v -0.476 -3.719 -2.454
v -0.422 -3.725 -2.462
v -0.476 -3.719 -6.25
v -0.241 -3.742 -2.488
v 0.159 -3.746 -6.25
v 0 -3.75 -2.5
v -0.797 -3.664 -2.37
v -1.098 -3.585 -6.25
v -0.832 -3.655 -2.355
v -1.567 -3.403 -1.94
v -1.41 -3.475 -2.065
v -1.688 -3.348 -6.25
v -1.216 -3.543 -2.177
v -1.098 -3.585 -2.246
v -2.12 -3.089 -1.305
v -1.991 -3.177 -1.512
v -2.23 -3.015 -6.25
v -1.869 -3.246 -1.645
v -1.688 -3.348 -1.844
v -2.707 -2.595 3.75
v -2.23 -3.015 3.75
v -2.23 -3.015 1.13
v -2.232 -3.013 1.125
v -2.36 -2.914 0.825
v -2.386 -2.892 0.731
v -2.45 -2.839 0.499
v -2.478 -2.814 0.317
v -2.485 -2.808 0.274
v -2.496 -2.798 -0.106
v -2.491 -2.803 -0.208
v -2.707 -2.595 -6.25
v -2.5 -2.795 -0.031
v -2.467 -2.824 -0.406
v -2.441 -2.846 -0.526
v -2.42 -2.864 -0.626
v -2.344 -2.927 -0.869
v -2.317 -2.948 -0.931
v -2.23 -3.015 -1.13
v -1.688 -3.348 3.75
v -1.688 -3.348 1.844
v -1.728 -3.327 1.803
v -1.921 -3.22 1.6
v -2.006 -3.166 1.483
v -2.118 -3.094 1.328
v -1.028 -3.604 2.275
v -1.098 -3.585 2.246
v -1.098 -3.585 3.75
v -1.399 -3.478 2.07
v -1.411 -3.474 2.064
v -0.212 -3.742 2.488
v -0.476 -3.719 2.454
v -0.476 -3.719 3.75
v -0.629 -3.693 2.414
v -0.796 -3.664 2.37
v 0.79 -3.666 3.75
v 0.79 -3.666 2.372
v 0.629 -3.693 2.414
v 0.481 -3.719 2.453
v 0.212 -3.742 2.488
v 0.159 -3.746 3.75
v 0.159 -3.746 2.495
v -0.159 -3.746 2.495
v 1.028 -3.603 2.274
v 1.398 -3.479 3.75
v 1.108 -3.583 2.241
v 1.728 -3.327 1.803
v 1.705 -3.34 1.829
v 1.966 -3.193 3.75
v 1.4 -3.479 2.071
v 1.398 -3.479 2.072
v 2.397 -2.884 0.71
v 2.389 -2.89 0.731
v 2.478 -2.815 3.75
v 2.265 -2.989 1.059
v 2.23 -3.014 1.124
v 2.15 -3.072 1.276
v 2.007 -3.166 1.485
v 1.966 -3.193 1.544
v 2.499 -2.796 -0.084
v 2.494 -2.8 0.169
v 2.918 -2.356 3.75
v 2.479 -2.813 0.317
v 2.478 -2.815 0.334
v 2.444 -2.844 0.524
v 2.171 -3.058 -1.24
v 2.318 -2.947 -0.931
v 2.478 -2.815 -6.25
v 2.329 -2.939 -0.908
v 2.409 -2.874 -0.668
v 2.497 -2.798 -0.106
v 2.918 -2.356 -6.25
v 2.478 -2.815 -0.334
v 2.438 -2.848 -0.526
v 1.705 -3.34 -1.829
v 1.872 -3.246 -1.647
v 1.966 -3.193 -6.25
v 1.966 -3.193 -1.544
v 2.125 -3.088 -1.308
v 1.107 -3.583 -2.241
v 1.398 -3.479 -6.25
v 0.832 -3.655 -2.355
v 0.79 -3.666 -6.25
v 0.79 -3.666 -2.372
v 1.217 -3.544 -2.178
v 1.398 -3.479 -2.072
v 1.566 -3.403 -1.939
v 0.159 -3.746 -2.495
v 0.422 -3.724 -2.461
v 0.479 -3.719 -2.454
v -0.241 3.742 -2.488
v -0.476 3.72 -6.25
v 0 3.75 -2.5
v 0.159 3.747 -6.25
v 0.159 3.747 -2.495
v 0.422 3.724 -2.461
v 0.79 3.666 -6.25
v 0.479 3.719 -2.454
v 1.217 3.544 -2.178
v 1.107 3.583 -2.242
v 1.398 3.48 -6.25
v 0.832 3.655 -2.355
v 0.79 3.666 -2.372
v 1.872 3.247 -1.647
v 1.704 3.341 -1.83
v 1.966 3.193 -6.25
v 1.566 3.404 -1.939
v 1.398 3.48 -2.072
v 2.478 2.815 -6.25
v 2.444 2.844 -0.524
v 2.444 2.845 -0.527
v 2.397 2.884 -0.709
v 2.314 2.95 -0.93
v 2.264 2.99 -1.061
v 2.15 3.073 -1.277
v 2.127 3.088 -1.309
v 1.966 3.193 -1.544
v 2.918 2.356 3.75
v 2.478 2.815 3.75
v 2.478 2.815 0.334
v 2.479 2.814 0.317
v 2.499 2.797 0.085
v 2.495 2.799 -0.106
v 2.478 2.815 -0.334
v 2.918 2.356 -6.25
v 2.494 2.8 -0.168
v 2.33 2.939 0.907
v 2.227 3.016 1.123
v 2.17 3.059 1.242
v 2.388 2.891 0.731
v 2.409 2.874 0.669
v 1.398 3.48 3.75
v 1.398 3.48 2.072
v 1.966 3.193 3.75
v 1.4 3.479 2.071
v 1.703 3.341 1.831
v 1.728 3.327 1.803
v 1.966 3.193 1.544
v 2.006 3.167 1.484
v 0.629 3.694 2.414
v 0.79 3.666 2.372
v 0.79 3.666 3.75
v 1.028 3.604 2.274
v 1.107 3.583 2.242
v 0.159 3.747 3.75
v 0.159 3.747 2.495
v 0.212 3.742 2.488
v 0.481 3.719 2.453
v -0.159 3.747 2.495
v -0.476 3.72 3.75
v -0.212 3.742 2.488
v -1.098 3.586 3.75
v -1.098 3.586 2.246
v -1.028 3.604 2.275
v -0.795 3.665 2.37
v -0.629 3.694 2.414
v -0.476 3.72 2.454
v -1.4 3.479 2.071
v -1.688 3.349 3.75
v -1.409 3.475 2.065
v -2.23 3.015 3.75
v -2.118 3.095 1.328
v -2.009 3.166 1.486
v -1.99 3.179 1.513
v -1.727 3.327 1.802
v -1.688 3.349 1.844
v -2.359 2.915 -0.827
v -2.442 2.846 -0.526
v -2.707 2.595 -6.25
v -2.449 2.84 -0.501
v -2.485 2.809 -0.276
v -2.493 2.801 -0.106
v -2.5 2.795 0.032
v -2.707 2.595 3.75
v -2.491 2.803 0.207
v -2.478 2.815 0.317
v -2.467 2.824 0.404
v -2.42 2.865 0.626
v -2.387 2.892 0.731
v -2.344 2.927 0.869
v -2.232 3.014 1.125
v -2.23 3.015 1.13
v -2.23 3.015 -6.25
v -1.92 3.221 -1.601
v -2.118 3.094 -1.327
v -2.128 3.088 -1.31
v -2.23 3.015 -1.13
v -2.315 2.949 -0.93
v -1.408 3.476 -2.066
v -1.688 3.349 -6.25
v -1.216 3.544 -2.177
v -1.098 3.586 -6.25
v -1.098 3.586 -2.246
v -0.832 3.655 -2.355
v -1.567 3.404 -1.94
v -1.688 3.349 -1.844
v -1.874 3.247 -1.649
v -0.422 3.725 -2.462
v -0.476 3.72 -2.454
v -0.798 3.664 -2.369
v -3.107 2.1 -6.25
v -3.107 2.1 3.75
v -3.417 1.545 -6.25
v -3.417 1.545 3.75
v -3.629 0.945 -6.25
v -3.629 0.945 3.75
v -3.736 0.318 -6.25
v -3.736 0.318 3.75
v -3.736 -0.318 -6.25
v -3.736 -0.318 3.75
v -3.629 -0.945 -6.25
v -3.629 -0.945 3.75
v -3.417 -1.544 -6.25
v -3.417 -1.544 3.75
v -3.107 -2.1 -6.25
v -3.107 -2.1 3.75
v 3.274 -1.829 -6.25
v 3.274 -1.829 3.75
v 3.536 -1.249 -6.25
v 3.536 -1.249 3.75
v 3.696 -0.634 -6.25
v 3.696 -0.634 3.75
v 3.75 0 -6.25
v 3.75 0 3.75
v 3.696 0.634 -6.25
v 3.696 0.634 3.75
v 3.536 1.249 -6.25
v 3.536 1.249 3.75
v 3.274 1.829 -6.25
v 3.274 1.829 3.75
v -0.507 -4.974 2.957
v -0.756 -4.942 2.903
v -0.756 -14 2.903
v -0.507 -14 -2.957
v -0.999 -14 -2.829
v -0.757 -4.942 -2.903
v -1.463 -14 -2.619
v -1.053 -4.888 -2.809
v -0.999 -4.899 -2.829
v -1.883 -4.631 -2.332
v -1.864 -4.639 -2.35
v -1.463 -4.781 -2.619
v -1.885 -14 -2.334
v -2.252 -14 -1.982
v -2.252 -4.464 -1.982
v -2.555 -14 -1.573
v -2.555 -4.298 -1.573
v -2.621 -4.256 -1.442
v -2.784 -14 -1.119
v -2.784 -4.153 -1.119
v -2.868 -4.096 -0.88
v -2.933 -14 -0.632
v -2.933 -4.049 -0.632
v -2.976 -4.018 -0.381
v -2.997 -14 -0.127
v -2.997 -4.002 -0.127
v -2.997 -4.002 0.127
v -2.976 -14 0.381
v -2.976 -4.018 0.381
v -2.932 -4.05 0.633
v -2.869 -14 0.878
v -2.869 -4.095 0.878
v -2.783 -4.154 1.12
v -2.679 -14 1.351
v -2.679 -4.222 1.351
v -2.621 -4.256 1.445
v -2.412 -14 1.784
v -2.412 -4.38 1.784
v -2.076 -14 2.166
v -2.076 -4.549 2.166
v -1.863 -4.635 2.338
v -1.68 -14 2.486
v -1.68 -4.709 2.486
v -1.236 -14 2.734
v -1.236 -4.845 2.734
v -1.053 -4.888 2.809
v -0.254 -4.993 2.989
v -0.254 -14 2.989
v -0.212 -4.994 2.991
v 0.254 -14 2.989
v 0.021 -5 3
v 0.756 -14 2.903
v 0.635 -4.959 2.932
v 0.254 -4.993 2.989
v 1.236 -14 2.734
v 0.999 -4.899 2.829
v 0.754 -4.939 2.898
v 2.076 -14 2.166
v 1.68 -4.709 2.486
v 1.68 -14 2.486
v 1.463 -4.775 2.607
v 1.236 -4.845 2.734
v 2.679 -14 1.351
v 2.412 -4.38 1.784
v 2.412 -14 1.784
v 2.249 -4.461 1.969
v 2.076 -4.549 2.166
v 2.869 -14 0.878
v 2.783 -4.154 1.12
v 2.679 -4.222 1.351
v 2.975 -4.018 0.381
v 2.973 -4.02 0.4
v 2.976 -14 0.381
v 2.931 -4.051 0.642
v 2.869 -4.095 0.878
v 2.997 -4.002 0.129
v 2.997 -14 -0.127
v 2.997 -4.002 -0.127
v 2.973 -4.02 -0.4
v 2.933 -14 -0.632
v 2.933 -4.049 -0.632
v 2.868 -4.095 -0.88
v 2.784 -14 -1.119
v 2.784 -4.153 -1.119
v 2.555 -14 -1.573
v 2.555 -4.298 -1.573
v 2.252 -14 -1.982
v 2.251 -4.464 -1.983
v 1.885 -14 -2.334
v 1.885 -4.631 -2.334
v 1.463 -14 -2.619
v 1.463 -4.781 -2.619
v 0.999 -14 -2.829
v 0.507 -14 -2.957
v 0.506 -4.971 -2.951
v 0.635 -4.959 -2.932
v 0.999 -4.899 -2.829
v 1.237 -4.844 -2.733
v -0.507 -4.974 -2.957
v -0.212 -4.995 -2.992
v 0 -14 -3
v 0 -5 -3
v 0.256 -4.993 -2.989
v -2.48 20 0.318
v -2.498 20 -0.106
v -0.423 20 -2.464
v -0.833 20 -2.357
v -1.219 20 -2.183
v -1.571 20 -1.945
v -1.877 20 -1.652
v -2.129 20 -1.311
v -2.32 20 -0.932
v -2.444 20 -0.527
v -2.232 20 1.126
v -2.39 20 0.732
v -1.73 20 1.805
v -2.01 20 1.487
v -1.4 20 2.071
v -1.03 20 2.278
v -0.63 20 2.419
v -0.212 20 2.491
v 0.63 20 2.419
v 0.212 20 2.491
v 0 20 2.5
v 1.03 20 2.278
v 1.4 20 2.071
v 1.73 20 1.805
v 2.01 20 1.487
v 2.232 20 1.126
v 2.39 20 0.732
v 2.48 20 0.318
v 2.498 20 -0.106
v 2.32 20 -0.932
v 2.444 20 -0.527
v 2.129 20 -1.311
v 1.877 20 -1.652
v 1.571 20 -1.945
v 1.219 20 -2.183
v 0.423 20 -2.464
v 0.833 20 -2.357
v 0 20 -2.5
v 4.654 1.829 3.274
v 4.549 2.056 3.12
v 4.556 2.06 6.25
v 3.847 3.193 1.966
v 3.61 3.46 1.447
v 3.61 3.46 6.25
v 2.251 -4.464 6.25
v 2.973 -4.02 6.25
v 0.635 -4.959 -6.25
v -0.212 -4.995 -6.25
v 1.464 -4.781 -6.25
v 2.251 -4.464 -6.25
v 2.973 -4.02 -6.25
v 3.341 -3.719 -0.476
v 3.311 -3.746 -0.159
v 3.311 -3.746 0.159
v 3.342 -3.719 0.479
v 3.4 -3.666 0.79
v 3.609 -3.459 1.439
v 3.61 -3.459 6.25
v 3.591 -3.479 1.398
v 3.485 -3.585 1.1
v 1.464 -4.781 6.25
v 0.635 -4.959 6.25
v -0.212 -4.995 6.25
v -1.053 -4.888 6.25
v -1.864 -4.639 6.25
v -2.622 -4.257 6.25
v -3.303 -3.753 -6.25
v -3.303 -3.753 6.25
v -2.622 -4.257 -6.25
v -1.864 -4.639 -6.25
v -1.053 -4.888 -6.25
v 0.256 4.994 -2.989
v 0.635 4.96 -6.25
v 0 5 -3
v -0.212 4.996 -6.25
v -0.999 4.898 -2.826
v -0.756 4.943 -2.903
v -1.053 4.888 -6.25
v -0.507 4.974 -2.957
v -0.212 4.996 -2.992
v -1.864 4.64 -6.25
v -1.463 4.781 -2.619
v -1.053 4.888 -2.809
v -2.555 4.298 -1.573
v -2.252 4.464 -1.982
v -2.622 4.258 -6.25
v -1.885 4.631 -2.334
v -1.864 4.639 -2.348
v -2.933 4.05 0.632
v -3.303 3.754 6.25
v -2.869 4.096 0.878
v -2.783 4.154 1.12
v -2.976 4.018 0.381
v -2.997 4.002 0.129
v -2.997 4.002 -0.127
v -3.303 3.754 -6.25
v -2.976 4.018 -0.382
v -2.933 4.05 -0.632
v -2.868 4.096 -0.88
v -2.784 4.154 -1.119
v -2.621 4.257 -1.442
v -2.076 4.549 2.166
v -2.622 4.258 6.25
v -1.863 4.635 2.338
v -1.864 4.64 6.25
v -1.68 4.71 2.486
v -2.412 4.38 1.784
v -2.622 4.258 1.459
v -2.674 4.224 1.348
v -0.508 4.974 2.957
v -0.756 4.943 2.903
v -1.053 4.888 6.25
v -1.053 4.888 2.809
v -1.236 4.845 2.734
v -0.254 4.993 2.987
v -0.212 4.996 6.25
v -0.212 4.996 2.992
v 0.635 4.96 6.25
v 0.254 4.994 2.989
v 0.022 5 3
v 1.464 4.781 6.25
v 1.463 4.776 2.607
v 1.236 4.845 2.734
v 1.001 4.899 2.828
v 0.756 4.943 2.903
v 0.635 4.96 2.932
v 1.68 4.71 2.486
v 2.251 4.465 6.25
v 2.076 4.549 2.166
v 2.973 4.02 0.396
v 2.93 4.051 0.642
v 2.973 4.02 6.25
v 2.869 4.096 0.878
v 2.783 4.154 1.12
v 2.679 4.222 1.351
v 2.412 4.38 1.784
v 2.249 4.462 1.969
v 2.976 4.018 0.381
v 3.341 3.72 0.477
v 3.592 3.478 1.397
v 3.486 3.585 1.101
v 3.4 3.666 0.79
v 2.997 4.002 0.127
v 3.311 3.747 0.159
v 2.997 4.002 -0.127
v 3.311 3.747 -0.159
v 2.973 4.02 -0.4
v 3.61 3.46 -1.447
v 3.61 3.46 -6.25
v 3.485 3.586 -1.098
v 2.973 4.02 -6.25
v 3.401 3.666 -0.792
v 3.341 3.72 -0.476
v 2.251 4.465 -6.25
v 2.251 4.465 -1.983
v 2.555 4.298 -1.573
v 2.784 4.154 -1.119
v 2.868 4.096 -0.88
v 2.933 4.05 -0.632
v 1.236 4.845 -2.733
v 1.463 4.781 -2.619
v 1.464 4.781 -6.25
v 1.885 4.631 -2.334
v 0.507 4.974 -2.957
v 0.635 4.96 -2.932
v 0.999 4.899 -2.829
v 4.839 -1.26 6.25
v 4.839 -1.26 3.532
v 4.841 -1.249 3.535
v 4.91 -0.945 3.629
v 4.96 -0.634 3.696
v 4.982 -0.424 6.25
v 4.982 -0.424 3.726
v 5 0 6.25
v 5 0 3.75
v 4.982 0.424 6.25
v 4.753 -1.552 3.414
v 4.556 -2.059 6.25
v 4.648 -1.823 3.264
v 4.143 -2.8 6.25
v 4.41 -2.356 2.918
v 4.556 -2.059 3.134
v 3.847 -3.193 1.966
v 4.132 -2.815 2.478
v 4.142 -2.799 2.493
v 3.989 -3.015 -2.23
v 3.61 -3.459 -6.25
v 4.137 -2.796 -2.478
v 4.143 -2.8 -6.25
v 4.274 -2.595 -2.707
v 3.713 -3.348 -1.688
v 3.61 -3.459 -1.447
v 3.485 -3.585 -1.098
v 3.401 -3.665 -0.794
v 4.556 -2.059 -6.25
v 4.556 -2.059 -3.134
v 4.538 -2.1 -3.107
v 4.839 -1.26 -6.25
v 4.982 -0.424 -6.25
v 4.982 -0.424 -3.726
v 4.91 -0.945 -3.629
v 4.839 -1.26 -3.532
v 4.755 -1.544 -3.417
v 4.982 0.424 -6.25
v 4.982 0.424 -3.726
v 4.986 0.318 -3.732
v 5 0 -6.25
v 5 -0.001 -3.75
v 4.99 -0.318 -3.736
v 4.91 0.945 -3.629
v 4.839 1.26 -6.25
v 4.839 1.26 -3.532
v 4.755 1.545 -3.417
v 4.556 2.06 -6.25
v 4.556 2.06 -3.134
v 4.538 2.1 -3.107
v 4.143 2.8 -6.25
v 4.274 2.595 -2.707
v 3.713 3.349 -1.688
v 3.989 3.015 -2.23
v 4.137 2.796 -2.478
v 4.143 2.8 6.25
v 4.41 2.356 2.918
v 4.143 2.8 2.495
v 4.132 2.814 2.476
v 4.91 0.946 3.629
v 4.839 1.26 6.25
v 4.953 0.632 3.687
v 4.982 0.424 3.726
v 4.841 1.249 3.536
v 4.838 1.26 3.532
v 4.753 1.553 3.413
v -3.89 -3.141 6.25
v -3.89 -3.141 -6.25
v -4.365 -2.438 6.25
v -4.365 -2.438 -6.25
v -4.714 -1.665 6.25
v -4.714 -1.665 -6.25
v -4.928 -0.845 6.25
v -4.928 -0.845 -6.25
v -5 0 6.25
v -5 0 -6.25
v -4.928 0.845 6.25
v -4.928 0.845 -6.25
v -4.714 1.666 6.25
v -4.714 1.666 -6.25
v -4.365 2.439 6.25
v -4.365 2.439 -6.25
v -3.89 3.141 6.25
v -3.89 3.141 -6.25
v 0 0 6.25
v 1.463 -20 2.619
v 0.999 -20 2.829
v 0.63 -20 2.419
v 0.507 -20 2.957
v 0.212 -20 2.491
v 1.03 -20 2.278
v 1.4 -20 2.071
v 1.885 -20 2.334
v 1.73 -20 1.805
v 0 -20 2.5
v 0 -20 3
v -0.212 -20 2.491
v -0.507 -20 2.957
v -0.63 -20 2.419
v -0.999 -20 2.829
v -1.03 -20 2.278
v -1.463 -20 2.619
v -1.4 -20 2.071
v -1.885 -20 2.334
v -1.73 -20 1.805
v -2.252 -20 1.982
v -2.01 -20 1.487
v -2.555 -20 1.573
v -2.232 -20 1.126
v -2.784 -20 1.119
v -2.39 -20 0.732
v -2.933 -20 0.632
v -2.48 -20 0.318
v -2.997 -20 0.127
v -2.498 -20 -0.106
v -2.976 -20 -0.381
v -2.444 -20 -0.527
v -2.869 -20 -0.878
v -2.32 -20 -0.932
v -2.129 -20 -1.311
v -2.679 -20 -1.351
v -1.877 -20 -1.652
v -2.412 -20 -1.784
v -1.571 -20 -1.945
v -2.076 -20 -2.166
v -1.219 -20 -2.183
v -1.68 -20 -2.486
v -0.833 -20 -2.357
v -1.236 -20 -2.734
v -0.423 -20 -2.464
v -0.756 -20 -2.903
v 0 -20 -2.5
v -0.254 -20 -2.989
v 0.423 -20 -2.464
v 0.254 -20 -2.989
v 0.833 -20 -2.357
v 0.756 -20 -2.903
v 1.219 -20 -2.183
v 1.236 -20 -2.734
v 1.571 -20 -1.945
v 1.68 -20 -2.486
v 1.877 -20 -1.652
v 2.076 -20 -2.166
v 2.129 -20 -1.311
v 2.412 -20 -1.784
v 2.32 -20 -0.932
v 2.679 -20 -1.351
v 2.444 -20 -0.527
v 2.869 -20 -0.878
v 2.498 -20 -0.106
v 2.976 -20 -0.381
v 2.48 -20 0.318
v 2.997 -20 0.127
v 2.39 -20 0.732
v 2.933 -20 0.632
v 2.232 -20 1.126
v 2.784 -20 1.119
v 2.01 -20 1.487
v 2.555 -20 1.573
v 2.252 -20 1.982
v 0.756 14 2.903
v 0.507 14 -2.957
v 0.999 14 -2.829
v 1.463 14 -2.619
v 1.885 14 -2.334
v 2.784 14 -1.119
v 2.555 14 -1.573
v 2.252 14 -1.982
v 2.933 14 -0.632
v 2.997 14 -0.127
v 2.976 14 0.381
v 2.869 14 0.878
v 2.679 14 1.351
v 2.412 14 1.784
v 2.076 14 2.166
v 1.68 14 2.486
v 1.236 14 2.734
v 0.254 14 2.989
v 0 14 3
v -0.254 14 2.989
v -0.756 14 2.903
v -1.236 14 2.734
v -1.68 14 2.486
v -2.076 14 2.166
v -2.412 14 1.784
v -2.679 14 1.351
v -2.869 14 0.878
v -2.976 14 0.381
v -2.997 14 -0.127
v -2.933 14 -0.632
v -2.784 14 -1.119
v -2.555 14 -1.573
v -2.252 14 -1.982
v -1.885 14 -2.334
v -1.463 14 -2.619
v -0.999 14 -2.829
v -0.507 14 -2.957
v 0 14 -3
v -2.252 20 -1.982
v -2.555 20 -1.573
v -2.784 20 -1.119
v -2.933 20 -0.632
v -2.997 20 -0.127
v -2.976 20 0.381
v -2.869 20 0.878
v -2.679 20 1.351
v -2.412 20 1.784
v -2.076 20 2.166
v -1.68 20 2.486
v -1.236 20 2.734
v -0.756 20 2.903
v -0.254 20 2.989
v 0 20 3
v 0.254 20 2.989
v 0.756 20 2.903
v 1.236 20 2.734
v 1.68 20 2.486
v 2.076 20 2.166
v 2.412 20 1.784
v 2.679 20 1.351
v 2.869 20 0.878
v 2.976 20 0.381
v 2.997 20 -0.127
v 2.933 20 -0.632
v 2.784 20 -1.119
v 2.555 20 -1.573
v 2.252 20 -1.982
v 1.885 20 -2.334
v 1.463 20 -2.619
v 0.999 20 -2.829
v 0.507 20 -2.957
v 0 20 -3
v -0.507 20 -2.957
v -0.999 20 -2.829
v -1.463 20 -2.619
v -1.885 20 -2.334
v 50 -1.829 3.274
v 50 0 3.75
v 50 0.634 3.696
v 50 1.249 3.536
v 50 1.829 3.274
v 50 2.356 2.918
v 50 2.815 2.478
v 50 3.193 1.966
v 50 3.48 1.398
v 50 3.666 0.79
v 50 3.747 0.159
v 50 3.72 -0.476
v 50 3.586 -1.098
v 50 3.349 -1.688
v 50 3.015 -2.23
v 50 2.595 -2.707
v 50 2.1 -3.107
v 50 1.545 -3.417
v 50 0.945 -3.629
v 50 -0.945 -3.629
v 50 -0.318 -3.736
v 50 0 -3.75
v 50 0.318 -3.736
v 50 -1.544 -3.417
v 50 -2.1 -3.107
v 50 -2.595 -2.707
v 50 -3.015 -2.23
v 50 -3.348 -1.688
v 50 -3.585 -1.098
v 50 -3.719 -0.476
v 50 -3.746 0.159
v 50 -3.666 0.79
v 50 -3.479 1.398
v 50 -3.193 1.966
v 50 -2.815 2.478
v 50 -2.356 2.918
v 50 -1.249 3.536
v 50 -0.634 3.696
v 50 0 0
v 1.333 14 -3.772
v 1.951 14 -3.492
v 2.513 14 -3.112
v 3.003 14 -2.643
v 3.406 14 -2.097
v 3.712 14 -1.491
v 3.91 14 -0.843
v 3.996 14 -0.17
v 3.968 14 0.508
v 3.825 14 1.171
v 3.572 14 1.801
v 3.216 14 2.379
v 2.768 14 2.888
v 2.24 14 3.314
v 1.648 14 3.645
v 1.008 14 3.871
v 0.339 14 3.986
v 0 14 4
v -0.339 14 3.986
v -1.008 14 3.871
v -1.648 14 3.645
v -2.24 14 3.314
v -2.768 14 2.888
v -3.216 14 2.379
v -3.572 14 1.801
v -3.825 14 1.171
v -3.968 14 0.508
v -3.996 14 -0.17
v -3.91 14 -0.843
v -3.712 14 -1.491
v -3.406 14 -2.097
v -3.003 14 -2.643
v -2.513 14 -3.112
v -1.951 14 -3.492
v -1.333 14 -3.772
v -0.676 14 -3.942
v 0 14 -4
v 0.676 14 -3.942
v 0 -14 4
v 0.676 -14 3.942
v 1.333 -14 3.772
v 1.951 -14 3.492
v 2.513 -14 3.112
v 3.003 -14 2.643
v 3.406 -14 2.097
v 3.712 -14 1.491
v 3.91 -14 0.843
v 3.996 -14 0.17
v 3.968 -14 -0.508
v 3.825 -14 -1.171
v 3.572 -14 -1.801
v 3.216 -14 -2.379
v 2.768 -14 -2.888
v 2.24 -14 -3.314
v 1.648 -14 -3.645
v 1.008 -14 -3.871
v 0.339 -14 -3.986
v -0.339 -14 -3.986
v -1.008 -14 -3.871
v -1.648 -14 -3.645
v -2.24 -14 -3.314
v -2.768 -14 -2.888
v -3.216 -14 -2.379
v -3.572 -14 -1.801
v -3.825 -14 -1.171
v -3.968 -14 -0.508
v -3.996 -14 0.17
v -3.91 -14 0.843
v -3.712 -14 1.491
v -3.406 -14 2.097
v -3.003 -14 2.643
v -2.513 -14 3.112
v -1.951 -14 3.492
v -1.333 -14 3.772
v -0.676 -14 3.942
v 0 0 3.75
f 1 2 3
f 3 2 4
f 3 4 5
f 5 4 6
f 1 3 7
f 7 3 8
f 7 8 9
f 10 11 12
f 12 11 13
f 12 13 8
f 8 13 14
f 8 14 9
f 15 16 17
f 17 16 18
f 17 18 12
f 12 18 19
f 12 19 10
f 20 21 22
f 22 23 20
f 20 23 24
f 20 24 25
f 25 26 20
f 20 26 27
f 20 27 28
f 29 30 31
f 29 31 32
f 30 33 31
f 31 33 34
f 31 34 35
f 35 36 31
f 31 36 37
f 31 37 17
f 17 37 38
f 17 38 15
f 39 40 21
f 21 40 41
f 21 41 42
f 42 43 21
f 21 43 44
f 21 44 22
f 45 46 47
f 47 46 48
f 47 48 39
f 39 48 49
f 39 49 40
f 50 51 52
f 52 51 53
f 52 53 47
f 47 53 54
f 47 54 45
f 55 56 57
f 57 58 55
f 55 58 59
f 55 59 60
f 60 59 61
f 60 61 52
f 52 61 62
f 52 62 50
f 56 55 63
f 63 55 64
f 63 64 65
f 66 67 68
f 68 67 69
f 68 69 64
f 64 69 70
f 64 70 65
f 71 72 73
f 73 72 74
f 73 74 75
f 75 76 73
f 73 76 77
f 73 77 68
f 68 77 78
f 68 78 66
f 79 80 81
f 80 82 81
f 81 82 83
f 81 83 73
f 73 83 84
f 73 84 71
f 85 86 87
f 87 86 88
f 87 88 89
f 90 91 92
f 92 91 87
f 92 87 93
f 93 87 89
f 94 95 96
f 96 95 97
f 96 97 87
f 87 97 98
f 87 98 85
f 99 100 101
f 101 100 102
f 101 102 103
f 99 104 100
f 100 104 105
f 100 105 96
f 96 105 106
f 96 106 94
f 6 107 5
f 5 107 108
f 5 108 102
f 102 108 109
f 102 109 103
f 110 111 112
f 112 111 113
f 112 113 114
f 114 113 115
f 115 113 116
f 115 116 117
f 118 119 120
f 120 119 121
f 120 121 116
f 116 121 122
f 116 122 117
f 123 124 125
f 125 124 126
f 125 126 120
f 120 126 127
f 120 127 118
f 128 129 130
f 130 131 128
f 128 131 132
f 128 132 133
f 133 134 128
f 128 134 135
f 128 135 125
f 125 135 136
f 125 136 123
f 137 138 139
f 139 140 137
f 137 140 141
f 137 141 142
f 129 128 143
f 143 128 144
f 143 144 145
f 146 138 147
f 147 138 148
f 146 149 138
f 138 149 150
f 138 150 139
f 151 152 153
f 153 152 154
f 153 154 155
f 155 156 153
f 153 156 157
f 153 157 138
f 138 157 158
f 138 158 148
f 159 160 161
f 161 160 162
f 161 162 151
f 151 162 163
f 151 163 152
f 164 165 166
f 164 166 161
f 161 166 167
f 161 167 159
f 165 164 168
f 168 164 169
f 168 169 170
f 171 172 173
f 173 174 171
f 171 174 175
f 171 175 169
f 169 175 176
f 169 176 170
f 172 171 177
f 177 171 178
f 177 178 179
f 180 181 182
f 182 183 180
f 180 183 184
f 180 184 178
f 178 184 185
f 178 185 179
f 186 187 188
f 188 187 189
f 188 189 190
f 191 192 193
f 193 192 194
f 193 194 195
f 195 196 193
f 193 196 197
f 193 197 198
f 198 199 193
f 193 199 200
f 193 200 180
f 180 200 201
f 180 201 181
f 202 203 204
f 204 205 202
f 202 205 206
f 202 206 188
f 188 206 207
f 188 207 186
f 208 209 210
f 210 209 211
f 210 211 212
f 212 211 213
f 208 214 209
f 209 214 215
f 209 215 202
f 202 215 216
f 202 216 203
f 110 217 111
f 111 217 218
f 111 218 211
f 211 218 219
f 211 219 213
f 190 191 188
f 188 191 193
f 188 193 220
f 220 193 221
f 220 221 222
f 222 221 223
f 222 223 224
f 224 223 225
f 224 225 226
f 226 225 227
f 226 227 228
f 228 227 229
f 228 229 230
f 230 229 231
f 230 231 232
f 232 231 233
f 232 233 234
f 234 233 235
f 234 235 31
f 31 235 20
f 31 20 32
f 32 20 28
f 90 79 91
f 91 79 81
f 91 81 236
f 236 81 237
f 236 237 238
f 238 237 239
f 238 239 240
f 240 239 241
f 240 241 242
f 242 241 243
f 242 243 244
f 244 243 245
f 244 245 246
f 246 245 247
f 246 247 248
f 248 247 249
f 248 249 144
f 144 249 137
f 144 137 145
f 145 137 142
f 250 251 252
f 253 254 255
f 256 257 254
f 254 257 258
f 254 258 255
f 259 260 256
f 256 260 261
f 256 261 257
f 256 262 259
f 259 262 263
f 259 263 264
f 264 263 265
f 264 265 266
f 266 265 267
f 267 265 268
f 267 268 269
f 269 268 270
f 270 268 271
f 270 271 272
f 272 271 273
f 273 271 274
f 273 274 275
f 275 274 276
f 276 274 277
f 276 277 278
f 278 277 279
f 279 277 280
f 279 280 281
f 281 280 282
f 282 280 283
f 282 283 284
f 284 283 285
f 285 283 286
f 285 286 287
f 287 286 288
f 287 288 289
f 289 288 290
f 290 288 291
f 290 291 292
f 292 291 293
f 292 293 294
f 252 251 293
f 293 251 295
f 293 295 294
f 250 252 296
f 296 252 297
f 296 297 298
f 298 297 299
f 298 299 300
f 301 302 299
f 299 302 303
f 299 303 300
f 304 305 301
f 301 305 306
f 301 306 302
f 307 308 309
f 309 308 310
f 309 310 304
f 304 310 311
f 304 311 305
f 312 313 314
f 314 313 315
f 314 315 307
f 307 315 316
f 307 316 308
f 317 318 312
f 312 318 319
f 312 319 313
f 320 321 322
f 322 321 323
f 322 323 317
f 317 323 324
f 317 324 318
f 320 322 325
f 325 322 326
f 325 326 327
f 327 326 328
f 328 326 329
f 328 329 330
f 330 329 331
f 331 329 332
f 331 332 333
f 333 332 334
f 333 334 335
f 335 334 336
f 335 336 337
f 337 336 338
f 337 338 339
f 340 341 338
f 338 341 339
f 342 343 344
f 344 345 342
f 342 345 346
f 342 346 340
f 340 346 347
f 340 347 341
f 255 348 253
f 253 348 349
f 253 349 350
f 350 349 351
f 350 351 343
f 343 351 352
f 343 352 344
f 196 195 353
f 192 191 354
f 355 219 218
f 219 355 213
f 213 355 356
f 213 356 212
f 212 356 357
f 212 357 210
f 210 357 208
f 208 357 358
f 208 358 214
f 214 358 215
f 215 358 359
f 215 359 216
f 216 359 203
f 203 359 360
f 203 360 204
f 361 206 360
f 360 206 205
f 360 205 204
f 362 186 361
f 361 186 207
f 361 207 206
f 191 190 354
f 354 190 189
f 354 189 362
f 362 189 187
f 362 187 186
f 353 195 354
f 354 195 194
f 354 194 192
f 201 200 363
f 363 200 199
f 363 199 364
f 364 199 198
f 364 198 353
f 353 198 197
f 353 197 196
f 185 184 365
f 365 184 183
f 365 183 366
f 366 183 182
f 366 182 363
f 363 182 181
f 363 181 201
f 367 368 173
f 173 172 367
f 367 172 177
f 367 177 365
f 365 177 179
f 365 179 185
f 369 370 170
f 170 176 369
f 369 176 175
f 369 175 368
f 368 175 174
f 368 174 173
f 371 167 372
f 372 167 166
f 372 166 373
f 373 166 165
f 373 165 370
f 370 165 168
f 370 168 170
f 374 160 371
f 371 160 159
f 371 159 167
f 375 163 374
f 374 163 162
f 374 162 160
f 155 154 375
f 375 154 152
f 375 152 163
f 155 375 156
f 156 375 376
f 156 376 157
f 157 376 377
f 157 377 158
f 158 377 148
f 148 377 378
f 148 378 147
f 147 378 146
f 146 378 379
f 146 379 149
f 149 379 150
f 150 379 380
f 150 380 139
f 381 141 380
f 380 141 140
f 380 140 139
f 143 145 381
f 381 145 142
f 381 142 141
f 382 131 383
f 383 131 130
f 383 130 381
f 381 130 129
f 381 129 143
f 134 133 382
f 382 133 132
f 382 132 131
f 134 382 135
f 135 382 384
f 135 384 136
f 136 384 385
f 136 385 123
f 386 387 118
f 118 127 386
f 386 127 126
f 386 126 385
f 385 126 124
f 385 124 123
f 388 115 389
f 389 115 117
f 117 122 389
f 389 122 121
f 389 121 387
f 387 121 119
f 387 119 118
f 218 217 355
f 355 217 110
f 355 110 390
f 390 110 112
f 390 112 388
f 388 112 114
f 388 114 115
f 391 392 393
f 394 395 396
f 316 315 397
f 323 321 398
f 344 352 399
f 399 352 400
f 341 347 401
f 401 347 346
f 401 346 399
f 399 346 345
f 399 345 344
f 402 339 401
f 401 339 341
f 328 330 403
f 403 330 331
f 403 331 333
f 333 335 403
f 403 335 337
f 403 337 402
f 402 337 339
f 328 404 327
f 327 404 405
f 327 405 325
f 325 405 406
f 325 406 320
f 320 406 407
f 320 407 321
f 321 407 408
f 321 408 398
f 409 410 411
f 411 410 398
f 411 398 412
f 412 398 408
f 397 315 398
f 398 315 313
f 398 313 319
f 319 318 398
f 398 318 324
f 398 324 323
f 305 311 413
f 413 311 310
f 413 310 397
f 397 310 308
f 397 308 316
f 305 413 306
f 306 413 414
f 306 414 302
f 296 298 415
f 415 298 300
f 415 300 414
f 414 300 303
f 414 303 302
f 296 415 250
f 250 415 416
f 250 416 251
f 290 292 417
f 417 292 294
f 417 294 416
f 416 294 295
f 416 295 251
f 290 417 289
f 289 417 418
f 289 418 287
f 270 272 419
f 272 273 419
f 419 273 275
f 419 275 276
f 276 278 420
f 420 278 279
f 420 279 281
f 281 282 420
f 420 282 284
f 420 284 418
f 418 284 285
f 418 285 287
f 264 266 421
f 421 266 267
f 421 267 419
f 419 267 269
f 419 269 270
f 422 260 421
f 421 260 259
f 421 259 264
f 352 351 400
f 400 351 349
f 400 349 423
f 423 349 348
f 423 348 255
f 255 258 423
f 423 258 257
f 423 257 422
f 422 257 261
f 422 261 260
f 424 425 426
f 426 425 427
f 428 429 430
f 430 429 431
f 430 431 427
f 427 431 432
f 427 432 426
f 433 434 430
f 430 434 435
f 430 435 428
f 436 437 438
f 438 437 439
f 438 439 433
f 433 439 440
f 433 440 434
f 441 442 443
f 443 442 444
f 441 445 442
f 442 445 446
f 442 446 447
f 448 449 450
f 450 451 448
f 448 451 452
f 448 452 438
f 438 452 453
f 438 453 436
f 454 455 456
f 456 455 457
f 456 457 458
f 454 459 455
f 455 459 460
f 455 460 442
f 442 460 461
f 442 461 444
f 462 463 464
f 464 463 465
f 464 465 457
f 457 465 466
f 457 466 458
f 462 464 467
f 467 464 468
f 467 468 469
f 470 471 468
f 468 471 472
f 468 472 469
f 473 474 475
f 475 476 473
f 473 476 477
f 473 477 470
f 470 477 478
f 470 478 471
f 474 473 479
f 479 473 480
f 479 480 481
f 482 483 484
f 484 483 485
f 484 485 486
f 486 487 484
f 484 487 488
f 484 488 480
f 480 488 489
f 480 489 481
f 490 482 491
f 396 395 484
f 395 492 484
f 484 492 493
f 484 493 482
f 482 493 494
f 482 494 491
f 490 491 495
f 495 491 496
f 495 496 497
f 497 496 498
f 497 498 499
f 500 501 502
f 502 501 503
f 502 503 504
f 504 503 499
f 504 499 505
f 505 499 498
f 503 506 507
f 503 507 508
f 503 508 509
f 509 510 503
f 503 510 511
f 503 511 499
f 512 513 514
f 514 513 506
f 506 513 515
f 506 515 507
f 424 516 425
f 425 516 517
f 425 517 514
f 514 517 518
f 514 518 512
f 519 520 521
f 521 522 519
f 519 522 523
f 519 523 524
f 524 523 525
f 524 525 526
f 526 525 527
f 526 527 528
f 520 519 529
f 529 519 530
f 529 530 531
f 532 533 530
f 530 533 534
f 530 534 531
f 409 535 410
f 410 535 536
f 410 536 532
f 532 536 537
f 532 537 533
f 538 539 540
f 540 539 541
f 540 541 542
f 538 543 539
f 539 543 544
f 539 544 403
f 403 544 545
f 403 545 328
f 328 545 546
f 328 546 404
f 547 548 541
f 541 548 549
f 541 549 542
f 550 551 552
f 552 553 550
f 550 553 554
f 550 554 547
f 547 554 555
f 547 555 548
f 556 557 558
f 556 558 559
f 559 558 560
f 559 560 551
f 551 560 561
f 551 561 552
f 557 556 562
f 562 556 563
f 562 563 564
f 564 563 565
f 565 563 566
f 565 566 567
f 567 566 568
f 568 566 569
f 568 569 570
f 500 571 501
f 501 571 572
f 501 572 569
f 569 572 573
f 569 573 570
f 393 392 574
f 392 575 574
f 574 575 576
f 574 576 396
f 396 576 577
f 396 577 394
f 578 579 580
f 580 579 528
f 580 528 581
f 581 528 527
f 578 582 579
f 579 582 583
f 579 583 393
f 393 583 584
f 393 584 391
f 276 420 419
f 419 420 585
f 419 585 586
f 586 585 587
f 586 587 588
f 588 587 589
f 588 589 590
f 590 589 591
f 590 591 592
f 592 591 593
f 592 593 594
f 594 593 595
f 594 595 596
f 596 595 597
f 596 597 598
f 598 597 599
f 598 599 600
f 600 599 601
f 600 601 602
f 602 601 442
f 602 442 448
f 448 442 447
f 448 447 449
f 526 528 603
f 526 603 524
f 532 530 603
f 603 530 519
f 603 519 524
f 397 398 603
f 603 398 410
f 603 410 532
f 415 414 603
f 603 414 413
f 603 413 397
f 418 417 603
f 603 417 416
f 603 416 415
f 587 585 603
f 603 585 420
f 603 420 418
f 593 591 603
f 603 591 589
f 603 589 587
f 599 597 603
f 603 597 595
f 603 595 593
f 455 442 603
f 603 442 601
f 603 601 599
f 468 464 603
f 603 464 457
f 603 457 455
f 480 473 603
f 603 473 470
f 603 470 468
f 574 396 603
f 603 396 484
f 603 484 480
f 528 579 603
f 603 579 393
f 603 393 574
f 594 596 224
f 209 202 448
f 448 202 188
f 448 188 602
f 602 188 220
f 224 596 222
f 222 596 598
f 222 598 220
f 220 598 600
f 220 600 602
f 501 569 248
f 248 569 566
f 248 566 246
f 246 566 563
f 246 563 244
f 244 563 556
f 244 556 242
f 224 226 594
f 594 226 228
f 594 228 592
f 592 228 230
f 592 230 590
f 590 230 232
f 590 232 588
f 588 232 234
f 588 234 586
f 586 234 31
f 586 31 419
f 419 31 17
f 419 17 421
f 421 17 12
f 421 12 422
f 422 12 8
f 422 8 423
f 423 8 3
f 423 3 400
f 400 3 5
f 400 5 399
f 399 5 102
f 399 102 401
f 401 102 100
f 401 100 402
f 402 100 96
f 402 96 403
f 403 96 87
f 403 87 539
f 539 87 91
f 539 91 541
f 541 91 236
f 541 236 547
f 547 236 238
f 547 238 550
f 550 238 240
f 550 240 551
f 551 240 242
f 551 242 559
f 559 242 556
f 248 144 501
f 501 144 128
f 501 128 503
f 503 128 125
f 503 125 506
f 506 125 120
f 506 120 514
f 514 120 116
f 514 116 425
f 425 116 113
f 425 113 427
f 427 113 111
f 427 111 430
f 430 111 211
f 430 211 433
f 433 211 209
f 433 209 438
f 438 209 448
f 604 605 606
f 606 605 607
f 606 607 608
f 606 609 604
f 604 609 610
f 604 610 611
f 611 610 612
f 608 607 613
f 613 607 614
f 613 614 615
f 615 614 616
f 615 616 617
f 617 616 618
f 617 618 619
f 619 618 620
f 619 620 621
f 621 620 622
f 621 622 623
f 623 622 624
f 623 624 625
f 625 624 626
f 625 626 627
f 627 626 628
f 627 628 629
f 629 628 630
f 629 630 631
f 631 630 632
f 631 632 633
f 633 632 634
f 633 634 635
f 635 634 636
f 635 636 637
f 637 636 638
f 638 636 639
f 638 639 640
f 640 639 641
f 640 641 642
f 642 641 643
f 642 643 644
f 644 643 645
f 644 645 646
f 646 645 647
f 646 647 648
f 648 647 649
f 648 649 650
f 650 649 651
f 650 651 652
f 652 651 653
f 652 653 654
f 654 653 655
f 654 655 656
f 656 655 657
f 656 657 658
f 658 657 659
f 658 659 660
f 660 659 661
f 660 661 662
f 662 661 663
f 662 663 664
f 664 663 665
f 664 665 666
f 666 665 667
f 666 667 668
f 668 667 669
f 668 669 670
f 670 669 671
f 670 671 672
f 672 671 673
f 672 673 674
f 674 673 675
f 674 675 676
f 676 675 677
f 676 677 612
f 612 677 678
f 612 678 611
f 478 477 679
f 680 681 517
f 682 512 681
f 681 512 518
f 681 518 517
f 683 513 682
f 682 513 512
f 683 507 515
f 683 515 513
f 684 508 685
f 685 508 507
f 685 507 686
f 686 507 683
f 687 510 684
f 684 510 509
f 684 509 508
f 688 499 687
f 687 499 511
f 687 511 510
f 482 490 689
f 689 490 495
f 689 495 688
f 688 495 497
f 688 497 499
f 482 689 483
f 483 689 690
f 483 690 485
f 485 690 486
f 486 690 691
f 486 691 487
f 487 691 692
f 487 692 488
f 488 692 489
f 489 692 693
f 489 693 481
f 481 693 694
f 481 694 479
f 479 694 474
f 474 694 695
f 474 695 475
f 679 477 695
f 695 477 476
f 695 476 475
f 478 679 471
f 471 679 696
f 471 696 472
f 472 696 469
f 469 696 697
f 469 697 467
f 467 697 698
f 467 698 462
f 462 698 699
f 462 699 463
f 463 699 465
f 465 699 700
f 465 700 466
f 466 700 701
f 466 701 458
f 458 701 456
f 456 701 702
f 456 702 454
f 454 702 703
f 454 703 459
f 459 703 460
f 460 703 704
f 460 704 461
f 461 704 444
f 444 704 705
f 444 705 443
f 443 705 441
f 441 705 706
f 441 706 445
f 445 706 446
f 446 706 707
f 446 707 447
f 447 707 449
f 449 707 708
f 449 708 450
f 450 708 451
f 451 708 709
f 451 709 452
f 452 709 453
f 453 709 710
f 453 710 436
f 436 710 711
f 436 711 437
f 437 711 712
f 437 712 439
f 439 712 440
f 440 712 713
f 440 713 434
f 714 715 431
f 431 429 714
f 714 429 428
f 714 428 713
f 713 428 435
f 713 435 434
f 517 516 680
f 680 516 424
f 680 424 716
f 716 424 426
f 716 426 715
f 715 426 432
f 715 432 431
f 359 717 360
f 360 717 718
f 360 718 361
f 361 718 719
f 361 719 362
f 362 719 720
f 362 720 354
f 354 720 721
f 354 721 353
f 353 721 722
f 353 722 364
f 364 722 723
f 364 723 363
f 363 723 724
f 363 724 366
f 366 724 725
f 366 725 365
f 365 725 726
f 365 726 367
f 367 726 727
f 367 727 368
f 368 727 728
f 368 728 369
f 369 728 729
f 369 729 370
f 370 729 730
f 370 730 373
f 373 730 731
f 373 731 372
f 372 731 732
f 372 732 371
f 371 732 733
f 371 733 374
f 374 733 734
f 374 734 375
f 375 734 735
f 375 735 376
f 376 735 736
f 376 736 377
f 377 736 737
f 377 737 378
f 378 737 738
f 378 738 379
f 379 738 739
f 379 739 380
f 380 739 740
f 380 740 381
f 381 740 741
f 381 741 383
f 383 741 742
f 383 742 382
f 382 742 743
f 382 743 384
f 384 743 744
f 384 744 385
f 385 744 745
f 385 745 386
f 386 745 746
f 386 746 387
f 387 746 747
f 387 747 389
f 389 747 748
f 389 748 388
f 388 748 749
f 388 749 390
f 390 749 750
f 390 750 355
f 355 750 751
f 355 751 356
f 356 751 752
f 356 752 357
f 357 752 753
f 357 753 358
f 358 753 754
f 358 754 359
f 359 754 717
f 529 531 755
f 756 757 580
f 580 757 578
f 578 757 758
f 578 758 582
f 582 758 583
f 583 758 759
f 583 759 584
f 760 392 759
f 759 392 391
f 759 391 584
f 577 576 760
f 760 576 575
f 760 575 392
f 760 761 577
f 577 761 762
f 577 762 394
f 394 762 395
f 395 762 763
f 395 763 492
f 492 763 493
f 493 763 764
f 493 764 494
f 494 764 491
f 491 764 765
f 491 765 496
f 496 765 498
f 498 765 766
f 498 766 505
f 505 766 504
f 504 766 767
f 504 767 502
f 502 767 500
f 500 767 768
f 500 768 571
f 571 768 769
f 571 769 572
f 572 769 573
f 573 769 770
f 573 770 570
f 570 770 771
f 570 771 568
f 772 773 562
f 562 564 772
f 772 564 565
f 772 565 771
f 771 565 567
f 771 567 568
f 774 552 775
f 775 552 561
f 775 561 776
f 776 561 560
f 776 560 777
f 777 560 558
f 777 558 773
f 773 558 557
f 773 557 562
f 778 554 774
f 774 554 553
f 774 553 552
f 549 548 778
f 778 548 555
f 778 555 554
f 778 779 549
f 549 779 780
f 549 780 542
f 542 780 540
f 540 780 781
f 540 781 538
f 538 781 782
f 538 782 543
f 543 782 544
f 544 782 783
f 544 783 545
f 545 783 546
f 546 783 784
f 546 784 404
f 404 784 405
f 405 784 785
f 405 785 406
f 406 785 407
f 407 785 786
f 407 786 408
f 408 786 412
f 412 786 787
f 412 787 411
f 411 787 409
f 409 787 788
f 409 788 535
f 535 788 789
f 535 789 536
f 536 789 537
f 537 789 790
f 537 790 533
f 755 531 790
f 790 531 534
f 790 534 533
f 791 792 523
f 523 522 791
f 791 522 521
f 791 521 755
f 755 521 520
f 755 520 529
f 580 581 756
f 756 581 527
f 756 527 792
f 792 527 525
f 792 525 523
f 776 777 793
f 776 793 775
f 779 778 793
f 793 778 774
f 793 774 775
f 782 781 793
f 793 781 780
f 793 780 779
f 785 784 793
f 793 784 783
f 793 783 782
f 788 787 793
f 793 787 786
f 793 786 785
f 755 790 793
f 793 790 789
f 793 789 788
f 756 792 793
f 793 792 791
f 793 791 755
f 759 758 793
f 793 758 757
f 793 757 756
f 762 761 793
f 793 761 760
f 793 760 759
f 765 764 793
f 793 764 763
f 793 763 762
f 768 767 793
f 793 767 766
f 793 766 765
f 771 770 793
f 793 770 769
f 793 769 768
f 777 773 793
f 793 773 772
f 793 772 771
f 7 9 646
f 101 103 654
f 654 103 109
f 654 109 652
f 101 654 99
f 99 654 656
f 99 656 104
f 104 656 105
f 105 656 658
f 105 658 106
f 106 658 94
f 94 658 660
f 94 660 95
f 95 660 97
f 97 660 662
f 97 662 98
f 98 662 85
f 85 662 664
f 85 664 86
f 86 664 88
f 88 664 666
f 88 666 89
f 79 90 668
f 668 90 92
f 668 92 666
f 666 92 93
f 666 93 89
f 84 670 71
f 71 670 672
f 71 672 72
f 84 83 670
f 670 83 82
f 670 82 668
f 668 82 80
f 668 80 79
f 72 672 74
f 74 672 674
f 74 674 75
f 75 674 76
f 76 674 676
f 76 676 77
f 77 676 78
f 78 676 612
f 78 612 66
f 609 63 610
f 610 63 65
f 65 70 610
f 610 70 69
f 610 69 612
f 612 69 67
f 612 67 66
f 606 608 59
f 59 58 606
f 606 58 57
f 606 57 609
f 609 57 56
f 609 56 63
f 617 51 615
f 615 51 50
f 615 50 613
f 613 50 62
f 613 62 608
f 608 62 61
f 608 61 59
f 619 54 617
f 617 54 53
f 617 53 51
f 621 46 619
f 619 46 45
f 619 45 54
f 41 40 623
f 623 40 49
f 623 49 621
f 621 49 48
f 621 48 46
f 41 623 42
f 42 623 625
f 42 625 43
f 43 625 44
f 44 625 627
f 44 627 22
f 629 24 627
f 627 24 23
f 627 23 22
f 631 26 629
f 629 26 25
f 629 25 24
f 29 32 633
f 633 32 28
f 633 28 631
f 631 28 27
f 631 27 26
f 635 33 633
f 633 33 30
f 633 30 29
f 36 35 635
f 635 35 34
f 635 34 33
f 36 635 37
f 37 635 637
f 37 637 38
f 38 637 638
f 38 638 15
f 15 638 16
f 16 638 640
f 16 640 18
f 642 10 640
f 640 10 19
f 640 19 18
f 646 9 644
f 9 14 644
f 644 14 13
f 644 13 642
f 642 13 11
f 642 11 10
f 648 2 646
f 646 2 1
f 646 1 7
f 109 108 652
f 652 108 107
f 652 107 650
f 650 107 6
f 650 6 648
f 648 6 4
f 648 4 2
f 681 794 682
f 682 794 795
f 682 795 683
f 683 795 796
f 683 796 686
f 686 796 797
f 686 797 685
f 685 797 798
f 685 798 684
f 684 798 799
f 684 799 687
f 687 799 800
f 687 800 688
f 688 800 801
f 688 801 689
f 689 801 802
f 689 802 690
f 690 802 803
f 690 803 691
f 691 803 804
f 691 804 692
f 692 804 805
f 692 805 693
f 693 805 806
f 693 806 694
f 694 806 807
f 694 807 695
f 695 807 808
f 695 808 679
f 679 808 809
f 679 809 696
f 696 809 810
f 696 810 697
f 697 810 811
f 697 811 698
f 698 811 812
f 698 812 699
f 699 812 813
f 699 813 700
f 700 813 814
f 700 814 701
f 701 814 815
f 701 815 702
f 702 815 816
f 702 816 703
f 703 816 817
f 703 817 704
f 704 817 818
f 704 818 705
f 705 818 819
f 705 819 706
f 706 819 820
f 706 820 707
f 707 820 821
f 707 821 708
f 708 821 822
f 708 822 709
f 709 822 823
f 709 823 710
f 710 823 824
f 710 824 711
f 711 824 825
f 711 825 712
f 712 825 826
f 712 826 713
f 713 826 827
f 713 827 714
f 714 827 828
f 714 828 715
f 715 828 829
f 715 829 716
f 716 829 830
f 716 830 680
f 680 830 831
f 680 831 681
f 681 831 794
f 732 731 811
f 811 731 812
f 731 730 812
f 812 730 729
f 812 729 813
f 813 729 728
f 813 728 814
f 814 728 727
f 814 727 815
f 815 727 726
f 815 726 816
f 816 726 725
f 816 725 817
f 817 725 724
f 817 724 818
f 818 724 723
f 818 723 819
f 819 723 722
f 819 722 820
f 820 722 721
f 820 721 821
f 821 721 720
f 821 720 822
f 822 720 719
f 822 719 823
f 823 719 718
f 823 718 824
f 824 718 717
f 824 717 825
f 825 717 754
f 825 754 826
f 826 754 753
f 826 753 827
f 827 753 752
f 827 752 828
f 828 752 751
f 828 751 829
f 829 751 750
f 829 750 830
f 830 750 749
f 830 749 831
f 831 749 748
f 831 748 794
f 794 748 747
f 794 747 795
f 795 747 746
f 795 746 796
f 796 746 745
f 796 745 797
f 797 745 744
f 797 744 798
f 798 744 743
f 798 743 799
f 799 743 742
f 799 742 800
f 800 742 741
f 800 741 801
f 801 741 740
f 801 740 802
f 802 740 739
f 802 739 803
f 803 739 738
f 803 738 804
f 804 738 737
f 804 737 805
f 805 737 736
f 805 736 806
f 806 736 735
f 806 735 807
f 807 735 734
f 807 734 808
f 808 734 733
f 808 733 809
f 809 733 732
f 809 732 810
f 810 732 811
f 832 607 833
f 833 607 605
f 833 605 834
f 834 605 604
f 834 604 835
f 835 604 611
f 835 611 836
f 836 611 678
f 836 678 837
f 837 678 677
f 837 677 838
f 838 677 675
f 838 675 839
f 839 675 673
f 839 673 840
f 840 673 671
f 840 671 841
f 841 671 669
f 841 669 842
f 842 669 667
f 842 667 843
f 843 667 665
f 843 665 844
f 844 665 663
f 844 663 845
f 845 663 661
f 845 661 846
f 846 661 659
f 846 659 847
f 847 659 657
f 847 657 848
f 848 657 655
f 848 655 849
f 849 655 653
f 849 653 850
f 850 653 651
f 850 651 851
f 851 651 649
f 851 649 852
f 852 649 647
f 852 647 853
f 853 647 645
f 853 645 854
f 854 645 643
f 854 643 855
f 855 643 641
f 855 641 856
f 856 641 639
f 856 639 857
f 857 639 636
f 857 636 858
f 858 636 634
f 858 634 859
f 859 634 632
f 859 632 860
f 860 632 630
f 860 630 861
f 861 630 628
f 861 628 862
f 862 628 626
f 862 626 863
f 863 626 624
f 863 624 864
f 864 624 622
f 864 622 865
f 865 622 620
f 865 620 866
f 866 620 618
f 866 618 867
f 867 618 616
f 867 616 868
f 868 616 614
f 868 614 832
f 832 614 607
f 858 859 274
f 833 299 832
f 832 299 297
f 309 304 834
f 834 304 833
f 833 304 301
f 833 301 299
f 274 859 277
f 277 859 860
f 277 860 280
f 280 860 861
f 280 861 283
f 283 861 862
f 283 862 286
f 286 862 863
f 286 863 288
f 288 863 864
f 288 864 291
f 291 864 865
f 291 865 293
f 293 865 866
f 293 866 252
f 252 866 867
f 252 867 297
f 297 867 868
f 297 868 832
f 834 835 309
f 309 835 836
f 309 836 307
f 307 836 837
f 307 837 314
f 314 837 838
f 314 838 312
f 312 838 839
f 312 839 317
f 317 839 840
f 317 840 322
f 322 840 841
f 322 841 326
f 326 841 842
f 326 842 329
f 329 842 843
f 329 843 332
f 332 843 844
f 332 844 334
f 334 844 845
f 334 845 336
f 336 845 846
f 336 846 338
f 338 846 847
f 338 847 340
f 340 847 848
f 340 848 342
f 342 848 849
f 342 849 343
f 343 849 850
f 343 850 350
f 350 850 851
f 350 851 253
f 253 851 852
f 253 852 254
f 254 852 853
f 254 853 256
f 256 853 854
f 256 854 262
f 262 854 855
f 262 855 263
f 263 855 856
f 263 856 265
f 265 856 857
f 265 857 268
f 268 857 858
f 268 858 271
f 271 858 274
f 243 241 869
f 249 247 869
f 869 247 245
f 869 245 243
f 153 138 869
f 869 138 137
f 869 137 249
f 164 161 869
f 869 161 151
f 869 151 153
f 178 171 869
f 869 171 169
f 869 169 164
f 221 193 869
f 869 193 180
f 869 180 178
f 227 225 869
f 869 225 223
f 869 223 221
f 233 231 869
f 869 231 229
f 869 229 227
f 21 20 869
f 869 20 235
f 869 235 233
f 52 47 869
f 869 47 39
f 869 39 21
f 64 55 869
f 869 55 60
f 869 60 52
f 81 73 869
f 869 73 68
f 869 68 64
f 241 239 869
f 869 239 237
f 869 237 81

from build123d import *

# Parameters (mm, degrees)
SKETCH1_R           = 5
BOSS_EXTRUDE1_DEPTH = 6.25
SKETCH2_R           = 3
BOSS_EXTRUDE2_DEPTH = 20
SKETCH3_R           = 3.75
BOSS_EXTRUDE3_DEPTH = 50
SKETCH4_R           = 2.5
CUT_EXTRUDE1_DEPTH  = 40
CUT_EXTRUDE2_REACH  = 14.5
SKETCH5_R           = 3.75
SKETCH7_R           = 5
BOSS_EXTRUDE4_DEPTH = 2.5


with BuildPart() as part:
    # Sketch1 → Boss-Extrude1 (new body, symmetric)
    with BuildSketch(Plane.XY):
        Circle(SKETCH1_R)
    extrude(amount=BOSS_EXTRUDE1_DEPTH, both=True)

    # Sketch2 → Boss-Extrude2 (add, symmetric)
    with BuildSketch(Plane(origin=(0, 0, 0), x_dir=(1, 0, 0), z_dir=(0, 1, 0))):
        Circle(SKETCH2_R)
    extrude(amount=BOSS_EXTRUDE2_DEPTH, both=True)

    # Sketch3 → Boss-Extrude3 (add)
    with BuildSketch(Plane(origin=(0, 0, 0), x_dir=(0, 0, -1), z_dir=(1, 0, 0))):
        Circle(SKETCH3_R)
    extrude(amount=BOSS_EXTRUDE3_DEPTH)

    # Sketch4 → Cut-Extrude1 (cut)
    with BuildSketch(Plane.XZ.offset(20)):
        Circle(SKETCH4_R)
    extrude(amount=-CUT_EXTRUDE1_DEPTH, mode=Mode.SUBTRACT)

    # Sketch5 → Cut-Extrude2 (cut, up to next)
    with BuildSketch(Plane.XY.offset(6.25), mode=Mode.PRIVATE) as cut_extrude2_sk1:
        Circle(SKETCH5_R)
    cut_extrude2_tool1 = extrude(cut_extrude2_sk1.sketch, amount=-CUT_EXTRUDE2_REACH, mode=Mode.PRIVATE) & part.part
    add(cut_extrude2_tool1.solids().sort_by_distance((0, 0, 6.25))[0], mode=Mode.SUBTRACT)

    # Sketch6 → Revolve1 (revolve)
    with BuildSketch(Plane.XY):
        Polygon((3, 14), (3, 20), (4, 14), align=None)
        Polygon((3, -20), (4, -14), (3, -14), align=None)
    revolve(axis=Axis((0, 20, 0), (0, -1, 0)))

    # Sketch7 → Boss-Extrude4 (add)
    with BuildSketch(Plane.XY.offset(6.25)):
        Circle(SKETCH7_R)
    extrude(amount=-BOSS_EXTRUDE4_DEPTH)


solid = part.part
